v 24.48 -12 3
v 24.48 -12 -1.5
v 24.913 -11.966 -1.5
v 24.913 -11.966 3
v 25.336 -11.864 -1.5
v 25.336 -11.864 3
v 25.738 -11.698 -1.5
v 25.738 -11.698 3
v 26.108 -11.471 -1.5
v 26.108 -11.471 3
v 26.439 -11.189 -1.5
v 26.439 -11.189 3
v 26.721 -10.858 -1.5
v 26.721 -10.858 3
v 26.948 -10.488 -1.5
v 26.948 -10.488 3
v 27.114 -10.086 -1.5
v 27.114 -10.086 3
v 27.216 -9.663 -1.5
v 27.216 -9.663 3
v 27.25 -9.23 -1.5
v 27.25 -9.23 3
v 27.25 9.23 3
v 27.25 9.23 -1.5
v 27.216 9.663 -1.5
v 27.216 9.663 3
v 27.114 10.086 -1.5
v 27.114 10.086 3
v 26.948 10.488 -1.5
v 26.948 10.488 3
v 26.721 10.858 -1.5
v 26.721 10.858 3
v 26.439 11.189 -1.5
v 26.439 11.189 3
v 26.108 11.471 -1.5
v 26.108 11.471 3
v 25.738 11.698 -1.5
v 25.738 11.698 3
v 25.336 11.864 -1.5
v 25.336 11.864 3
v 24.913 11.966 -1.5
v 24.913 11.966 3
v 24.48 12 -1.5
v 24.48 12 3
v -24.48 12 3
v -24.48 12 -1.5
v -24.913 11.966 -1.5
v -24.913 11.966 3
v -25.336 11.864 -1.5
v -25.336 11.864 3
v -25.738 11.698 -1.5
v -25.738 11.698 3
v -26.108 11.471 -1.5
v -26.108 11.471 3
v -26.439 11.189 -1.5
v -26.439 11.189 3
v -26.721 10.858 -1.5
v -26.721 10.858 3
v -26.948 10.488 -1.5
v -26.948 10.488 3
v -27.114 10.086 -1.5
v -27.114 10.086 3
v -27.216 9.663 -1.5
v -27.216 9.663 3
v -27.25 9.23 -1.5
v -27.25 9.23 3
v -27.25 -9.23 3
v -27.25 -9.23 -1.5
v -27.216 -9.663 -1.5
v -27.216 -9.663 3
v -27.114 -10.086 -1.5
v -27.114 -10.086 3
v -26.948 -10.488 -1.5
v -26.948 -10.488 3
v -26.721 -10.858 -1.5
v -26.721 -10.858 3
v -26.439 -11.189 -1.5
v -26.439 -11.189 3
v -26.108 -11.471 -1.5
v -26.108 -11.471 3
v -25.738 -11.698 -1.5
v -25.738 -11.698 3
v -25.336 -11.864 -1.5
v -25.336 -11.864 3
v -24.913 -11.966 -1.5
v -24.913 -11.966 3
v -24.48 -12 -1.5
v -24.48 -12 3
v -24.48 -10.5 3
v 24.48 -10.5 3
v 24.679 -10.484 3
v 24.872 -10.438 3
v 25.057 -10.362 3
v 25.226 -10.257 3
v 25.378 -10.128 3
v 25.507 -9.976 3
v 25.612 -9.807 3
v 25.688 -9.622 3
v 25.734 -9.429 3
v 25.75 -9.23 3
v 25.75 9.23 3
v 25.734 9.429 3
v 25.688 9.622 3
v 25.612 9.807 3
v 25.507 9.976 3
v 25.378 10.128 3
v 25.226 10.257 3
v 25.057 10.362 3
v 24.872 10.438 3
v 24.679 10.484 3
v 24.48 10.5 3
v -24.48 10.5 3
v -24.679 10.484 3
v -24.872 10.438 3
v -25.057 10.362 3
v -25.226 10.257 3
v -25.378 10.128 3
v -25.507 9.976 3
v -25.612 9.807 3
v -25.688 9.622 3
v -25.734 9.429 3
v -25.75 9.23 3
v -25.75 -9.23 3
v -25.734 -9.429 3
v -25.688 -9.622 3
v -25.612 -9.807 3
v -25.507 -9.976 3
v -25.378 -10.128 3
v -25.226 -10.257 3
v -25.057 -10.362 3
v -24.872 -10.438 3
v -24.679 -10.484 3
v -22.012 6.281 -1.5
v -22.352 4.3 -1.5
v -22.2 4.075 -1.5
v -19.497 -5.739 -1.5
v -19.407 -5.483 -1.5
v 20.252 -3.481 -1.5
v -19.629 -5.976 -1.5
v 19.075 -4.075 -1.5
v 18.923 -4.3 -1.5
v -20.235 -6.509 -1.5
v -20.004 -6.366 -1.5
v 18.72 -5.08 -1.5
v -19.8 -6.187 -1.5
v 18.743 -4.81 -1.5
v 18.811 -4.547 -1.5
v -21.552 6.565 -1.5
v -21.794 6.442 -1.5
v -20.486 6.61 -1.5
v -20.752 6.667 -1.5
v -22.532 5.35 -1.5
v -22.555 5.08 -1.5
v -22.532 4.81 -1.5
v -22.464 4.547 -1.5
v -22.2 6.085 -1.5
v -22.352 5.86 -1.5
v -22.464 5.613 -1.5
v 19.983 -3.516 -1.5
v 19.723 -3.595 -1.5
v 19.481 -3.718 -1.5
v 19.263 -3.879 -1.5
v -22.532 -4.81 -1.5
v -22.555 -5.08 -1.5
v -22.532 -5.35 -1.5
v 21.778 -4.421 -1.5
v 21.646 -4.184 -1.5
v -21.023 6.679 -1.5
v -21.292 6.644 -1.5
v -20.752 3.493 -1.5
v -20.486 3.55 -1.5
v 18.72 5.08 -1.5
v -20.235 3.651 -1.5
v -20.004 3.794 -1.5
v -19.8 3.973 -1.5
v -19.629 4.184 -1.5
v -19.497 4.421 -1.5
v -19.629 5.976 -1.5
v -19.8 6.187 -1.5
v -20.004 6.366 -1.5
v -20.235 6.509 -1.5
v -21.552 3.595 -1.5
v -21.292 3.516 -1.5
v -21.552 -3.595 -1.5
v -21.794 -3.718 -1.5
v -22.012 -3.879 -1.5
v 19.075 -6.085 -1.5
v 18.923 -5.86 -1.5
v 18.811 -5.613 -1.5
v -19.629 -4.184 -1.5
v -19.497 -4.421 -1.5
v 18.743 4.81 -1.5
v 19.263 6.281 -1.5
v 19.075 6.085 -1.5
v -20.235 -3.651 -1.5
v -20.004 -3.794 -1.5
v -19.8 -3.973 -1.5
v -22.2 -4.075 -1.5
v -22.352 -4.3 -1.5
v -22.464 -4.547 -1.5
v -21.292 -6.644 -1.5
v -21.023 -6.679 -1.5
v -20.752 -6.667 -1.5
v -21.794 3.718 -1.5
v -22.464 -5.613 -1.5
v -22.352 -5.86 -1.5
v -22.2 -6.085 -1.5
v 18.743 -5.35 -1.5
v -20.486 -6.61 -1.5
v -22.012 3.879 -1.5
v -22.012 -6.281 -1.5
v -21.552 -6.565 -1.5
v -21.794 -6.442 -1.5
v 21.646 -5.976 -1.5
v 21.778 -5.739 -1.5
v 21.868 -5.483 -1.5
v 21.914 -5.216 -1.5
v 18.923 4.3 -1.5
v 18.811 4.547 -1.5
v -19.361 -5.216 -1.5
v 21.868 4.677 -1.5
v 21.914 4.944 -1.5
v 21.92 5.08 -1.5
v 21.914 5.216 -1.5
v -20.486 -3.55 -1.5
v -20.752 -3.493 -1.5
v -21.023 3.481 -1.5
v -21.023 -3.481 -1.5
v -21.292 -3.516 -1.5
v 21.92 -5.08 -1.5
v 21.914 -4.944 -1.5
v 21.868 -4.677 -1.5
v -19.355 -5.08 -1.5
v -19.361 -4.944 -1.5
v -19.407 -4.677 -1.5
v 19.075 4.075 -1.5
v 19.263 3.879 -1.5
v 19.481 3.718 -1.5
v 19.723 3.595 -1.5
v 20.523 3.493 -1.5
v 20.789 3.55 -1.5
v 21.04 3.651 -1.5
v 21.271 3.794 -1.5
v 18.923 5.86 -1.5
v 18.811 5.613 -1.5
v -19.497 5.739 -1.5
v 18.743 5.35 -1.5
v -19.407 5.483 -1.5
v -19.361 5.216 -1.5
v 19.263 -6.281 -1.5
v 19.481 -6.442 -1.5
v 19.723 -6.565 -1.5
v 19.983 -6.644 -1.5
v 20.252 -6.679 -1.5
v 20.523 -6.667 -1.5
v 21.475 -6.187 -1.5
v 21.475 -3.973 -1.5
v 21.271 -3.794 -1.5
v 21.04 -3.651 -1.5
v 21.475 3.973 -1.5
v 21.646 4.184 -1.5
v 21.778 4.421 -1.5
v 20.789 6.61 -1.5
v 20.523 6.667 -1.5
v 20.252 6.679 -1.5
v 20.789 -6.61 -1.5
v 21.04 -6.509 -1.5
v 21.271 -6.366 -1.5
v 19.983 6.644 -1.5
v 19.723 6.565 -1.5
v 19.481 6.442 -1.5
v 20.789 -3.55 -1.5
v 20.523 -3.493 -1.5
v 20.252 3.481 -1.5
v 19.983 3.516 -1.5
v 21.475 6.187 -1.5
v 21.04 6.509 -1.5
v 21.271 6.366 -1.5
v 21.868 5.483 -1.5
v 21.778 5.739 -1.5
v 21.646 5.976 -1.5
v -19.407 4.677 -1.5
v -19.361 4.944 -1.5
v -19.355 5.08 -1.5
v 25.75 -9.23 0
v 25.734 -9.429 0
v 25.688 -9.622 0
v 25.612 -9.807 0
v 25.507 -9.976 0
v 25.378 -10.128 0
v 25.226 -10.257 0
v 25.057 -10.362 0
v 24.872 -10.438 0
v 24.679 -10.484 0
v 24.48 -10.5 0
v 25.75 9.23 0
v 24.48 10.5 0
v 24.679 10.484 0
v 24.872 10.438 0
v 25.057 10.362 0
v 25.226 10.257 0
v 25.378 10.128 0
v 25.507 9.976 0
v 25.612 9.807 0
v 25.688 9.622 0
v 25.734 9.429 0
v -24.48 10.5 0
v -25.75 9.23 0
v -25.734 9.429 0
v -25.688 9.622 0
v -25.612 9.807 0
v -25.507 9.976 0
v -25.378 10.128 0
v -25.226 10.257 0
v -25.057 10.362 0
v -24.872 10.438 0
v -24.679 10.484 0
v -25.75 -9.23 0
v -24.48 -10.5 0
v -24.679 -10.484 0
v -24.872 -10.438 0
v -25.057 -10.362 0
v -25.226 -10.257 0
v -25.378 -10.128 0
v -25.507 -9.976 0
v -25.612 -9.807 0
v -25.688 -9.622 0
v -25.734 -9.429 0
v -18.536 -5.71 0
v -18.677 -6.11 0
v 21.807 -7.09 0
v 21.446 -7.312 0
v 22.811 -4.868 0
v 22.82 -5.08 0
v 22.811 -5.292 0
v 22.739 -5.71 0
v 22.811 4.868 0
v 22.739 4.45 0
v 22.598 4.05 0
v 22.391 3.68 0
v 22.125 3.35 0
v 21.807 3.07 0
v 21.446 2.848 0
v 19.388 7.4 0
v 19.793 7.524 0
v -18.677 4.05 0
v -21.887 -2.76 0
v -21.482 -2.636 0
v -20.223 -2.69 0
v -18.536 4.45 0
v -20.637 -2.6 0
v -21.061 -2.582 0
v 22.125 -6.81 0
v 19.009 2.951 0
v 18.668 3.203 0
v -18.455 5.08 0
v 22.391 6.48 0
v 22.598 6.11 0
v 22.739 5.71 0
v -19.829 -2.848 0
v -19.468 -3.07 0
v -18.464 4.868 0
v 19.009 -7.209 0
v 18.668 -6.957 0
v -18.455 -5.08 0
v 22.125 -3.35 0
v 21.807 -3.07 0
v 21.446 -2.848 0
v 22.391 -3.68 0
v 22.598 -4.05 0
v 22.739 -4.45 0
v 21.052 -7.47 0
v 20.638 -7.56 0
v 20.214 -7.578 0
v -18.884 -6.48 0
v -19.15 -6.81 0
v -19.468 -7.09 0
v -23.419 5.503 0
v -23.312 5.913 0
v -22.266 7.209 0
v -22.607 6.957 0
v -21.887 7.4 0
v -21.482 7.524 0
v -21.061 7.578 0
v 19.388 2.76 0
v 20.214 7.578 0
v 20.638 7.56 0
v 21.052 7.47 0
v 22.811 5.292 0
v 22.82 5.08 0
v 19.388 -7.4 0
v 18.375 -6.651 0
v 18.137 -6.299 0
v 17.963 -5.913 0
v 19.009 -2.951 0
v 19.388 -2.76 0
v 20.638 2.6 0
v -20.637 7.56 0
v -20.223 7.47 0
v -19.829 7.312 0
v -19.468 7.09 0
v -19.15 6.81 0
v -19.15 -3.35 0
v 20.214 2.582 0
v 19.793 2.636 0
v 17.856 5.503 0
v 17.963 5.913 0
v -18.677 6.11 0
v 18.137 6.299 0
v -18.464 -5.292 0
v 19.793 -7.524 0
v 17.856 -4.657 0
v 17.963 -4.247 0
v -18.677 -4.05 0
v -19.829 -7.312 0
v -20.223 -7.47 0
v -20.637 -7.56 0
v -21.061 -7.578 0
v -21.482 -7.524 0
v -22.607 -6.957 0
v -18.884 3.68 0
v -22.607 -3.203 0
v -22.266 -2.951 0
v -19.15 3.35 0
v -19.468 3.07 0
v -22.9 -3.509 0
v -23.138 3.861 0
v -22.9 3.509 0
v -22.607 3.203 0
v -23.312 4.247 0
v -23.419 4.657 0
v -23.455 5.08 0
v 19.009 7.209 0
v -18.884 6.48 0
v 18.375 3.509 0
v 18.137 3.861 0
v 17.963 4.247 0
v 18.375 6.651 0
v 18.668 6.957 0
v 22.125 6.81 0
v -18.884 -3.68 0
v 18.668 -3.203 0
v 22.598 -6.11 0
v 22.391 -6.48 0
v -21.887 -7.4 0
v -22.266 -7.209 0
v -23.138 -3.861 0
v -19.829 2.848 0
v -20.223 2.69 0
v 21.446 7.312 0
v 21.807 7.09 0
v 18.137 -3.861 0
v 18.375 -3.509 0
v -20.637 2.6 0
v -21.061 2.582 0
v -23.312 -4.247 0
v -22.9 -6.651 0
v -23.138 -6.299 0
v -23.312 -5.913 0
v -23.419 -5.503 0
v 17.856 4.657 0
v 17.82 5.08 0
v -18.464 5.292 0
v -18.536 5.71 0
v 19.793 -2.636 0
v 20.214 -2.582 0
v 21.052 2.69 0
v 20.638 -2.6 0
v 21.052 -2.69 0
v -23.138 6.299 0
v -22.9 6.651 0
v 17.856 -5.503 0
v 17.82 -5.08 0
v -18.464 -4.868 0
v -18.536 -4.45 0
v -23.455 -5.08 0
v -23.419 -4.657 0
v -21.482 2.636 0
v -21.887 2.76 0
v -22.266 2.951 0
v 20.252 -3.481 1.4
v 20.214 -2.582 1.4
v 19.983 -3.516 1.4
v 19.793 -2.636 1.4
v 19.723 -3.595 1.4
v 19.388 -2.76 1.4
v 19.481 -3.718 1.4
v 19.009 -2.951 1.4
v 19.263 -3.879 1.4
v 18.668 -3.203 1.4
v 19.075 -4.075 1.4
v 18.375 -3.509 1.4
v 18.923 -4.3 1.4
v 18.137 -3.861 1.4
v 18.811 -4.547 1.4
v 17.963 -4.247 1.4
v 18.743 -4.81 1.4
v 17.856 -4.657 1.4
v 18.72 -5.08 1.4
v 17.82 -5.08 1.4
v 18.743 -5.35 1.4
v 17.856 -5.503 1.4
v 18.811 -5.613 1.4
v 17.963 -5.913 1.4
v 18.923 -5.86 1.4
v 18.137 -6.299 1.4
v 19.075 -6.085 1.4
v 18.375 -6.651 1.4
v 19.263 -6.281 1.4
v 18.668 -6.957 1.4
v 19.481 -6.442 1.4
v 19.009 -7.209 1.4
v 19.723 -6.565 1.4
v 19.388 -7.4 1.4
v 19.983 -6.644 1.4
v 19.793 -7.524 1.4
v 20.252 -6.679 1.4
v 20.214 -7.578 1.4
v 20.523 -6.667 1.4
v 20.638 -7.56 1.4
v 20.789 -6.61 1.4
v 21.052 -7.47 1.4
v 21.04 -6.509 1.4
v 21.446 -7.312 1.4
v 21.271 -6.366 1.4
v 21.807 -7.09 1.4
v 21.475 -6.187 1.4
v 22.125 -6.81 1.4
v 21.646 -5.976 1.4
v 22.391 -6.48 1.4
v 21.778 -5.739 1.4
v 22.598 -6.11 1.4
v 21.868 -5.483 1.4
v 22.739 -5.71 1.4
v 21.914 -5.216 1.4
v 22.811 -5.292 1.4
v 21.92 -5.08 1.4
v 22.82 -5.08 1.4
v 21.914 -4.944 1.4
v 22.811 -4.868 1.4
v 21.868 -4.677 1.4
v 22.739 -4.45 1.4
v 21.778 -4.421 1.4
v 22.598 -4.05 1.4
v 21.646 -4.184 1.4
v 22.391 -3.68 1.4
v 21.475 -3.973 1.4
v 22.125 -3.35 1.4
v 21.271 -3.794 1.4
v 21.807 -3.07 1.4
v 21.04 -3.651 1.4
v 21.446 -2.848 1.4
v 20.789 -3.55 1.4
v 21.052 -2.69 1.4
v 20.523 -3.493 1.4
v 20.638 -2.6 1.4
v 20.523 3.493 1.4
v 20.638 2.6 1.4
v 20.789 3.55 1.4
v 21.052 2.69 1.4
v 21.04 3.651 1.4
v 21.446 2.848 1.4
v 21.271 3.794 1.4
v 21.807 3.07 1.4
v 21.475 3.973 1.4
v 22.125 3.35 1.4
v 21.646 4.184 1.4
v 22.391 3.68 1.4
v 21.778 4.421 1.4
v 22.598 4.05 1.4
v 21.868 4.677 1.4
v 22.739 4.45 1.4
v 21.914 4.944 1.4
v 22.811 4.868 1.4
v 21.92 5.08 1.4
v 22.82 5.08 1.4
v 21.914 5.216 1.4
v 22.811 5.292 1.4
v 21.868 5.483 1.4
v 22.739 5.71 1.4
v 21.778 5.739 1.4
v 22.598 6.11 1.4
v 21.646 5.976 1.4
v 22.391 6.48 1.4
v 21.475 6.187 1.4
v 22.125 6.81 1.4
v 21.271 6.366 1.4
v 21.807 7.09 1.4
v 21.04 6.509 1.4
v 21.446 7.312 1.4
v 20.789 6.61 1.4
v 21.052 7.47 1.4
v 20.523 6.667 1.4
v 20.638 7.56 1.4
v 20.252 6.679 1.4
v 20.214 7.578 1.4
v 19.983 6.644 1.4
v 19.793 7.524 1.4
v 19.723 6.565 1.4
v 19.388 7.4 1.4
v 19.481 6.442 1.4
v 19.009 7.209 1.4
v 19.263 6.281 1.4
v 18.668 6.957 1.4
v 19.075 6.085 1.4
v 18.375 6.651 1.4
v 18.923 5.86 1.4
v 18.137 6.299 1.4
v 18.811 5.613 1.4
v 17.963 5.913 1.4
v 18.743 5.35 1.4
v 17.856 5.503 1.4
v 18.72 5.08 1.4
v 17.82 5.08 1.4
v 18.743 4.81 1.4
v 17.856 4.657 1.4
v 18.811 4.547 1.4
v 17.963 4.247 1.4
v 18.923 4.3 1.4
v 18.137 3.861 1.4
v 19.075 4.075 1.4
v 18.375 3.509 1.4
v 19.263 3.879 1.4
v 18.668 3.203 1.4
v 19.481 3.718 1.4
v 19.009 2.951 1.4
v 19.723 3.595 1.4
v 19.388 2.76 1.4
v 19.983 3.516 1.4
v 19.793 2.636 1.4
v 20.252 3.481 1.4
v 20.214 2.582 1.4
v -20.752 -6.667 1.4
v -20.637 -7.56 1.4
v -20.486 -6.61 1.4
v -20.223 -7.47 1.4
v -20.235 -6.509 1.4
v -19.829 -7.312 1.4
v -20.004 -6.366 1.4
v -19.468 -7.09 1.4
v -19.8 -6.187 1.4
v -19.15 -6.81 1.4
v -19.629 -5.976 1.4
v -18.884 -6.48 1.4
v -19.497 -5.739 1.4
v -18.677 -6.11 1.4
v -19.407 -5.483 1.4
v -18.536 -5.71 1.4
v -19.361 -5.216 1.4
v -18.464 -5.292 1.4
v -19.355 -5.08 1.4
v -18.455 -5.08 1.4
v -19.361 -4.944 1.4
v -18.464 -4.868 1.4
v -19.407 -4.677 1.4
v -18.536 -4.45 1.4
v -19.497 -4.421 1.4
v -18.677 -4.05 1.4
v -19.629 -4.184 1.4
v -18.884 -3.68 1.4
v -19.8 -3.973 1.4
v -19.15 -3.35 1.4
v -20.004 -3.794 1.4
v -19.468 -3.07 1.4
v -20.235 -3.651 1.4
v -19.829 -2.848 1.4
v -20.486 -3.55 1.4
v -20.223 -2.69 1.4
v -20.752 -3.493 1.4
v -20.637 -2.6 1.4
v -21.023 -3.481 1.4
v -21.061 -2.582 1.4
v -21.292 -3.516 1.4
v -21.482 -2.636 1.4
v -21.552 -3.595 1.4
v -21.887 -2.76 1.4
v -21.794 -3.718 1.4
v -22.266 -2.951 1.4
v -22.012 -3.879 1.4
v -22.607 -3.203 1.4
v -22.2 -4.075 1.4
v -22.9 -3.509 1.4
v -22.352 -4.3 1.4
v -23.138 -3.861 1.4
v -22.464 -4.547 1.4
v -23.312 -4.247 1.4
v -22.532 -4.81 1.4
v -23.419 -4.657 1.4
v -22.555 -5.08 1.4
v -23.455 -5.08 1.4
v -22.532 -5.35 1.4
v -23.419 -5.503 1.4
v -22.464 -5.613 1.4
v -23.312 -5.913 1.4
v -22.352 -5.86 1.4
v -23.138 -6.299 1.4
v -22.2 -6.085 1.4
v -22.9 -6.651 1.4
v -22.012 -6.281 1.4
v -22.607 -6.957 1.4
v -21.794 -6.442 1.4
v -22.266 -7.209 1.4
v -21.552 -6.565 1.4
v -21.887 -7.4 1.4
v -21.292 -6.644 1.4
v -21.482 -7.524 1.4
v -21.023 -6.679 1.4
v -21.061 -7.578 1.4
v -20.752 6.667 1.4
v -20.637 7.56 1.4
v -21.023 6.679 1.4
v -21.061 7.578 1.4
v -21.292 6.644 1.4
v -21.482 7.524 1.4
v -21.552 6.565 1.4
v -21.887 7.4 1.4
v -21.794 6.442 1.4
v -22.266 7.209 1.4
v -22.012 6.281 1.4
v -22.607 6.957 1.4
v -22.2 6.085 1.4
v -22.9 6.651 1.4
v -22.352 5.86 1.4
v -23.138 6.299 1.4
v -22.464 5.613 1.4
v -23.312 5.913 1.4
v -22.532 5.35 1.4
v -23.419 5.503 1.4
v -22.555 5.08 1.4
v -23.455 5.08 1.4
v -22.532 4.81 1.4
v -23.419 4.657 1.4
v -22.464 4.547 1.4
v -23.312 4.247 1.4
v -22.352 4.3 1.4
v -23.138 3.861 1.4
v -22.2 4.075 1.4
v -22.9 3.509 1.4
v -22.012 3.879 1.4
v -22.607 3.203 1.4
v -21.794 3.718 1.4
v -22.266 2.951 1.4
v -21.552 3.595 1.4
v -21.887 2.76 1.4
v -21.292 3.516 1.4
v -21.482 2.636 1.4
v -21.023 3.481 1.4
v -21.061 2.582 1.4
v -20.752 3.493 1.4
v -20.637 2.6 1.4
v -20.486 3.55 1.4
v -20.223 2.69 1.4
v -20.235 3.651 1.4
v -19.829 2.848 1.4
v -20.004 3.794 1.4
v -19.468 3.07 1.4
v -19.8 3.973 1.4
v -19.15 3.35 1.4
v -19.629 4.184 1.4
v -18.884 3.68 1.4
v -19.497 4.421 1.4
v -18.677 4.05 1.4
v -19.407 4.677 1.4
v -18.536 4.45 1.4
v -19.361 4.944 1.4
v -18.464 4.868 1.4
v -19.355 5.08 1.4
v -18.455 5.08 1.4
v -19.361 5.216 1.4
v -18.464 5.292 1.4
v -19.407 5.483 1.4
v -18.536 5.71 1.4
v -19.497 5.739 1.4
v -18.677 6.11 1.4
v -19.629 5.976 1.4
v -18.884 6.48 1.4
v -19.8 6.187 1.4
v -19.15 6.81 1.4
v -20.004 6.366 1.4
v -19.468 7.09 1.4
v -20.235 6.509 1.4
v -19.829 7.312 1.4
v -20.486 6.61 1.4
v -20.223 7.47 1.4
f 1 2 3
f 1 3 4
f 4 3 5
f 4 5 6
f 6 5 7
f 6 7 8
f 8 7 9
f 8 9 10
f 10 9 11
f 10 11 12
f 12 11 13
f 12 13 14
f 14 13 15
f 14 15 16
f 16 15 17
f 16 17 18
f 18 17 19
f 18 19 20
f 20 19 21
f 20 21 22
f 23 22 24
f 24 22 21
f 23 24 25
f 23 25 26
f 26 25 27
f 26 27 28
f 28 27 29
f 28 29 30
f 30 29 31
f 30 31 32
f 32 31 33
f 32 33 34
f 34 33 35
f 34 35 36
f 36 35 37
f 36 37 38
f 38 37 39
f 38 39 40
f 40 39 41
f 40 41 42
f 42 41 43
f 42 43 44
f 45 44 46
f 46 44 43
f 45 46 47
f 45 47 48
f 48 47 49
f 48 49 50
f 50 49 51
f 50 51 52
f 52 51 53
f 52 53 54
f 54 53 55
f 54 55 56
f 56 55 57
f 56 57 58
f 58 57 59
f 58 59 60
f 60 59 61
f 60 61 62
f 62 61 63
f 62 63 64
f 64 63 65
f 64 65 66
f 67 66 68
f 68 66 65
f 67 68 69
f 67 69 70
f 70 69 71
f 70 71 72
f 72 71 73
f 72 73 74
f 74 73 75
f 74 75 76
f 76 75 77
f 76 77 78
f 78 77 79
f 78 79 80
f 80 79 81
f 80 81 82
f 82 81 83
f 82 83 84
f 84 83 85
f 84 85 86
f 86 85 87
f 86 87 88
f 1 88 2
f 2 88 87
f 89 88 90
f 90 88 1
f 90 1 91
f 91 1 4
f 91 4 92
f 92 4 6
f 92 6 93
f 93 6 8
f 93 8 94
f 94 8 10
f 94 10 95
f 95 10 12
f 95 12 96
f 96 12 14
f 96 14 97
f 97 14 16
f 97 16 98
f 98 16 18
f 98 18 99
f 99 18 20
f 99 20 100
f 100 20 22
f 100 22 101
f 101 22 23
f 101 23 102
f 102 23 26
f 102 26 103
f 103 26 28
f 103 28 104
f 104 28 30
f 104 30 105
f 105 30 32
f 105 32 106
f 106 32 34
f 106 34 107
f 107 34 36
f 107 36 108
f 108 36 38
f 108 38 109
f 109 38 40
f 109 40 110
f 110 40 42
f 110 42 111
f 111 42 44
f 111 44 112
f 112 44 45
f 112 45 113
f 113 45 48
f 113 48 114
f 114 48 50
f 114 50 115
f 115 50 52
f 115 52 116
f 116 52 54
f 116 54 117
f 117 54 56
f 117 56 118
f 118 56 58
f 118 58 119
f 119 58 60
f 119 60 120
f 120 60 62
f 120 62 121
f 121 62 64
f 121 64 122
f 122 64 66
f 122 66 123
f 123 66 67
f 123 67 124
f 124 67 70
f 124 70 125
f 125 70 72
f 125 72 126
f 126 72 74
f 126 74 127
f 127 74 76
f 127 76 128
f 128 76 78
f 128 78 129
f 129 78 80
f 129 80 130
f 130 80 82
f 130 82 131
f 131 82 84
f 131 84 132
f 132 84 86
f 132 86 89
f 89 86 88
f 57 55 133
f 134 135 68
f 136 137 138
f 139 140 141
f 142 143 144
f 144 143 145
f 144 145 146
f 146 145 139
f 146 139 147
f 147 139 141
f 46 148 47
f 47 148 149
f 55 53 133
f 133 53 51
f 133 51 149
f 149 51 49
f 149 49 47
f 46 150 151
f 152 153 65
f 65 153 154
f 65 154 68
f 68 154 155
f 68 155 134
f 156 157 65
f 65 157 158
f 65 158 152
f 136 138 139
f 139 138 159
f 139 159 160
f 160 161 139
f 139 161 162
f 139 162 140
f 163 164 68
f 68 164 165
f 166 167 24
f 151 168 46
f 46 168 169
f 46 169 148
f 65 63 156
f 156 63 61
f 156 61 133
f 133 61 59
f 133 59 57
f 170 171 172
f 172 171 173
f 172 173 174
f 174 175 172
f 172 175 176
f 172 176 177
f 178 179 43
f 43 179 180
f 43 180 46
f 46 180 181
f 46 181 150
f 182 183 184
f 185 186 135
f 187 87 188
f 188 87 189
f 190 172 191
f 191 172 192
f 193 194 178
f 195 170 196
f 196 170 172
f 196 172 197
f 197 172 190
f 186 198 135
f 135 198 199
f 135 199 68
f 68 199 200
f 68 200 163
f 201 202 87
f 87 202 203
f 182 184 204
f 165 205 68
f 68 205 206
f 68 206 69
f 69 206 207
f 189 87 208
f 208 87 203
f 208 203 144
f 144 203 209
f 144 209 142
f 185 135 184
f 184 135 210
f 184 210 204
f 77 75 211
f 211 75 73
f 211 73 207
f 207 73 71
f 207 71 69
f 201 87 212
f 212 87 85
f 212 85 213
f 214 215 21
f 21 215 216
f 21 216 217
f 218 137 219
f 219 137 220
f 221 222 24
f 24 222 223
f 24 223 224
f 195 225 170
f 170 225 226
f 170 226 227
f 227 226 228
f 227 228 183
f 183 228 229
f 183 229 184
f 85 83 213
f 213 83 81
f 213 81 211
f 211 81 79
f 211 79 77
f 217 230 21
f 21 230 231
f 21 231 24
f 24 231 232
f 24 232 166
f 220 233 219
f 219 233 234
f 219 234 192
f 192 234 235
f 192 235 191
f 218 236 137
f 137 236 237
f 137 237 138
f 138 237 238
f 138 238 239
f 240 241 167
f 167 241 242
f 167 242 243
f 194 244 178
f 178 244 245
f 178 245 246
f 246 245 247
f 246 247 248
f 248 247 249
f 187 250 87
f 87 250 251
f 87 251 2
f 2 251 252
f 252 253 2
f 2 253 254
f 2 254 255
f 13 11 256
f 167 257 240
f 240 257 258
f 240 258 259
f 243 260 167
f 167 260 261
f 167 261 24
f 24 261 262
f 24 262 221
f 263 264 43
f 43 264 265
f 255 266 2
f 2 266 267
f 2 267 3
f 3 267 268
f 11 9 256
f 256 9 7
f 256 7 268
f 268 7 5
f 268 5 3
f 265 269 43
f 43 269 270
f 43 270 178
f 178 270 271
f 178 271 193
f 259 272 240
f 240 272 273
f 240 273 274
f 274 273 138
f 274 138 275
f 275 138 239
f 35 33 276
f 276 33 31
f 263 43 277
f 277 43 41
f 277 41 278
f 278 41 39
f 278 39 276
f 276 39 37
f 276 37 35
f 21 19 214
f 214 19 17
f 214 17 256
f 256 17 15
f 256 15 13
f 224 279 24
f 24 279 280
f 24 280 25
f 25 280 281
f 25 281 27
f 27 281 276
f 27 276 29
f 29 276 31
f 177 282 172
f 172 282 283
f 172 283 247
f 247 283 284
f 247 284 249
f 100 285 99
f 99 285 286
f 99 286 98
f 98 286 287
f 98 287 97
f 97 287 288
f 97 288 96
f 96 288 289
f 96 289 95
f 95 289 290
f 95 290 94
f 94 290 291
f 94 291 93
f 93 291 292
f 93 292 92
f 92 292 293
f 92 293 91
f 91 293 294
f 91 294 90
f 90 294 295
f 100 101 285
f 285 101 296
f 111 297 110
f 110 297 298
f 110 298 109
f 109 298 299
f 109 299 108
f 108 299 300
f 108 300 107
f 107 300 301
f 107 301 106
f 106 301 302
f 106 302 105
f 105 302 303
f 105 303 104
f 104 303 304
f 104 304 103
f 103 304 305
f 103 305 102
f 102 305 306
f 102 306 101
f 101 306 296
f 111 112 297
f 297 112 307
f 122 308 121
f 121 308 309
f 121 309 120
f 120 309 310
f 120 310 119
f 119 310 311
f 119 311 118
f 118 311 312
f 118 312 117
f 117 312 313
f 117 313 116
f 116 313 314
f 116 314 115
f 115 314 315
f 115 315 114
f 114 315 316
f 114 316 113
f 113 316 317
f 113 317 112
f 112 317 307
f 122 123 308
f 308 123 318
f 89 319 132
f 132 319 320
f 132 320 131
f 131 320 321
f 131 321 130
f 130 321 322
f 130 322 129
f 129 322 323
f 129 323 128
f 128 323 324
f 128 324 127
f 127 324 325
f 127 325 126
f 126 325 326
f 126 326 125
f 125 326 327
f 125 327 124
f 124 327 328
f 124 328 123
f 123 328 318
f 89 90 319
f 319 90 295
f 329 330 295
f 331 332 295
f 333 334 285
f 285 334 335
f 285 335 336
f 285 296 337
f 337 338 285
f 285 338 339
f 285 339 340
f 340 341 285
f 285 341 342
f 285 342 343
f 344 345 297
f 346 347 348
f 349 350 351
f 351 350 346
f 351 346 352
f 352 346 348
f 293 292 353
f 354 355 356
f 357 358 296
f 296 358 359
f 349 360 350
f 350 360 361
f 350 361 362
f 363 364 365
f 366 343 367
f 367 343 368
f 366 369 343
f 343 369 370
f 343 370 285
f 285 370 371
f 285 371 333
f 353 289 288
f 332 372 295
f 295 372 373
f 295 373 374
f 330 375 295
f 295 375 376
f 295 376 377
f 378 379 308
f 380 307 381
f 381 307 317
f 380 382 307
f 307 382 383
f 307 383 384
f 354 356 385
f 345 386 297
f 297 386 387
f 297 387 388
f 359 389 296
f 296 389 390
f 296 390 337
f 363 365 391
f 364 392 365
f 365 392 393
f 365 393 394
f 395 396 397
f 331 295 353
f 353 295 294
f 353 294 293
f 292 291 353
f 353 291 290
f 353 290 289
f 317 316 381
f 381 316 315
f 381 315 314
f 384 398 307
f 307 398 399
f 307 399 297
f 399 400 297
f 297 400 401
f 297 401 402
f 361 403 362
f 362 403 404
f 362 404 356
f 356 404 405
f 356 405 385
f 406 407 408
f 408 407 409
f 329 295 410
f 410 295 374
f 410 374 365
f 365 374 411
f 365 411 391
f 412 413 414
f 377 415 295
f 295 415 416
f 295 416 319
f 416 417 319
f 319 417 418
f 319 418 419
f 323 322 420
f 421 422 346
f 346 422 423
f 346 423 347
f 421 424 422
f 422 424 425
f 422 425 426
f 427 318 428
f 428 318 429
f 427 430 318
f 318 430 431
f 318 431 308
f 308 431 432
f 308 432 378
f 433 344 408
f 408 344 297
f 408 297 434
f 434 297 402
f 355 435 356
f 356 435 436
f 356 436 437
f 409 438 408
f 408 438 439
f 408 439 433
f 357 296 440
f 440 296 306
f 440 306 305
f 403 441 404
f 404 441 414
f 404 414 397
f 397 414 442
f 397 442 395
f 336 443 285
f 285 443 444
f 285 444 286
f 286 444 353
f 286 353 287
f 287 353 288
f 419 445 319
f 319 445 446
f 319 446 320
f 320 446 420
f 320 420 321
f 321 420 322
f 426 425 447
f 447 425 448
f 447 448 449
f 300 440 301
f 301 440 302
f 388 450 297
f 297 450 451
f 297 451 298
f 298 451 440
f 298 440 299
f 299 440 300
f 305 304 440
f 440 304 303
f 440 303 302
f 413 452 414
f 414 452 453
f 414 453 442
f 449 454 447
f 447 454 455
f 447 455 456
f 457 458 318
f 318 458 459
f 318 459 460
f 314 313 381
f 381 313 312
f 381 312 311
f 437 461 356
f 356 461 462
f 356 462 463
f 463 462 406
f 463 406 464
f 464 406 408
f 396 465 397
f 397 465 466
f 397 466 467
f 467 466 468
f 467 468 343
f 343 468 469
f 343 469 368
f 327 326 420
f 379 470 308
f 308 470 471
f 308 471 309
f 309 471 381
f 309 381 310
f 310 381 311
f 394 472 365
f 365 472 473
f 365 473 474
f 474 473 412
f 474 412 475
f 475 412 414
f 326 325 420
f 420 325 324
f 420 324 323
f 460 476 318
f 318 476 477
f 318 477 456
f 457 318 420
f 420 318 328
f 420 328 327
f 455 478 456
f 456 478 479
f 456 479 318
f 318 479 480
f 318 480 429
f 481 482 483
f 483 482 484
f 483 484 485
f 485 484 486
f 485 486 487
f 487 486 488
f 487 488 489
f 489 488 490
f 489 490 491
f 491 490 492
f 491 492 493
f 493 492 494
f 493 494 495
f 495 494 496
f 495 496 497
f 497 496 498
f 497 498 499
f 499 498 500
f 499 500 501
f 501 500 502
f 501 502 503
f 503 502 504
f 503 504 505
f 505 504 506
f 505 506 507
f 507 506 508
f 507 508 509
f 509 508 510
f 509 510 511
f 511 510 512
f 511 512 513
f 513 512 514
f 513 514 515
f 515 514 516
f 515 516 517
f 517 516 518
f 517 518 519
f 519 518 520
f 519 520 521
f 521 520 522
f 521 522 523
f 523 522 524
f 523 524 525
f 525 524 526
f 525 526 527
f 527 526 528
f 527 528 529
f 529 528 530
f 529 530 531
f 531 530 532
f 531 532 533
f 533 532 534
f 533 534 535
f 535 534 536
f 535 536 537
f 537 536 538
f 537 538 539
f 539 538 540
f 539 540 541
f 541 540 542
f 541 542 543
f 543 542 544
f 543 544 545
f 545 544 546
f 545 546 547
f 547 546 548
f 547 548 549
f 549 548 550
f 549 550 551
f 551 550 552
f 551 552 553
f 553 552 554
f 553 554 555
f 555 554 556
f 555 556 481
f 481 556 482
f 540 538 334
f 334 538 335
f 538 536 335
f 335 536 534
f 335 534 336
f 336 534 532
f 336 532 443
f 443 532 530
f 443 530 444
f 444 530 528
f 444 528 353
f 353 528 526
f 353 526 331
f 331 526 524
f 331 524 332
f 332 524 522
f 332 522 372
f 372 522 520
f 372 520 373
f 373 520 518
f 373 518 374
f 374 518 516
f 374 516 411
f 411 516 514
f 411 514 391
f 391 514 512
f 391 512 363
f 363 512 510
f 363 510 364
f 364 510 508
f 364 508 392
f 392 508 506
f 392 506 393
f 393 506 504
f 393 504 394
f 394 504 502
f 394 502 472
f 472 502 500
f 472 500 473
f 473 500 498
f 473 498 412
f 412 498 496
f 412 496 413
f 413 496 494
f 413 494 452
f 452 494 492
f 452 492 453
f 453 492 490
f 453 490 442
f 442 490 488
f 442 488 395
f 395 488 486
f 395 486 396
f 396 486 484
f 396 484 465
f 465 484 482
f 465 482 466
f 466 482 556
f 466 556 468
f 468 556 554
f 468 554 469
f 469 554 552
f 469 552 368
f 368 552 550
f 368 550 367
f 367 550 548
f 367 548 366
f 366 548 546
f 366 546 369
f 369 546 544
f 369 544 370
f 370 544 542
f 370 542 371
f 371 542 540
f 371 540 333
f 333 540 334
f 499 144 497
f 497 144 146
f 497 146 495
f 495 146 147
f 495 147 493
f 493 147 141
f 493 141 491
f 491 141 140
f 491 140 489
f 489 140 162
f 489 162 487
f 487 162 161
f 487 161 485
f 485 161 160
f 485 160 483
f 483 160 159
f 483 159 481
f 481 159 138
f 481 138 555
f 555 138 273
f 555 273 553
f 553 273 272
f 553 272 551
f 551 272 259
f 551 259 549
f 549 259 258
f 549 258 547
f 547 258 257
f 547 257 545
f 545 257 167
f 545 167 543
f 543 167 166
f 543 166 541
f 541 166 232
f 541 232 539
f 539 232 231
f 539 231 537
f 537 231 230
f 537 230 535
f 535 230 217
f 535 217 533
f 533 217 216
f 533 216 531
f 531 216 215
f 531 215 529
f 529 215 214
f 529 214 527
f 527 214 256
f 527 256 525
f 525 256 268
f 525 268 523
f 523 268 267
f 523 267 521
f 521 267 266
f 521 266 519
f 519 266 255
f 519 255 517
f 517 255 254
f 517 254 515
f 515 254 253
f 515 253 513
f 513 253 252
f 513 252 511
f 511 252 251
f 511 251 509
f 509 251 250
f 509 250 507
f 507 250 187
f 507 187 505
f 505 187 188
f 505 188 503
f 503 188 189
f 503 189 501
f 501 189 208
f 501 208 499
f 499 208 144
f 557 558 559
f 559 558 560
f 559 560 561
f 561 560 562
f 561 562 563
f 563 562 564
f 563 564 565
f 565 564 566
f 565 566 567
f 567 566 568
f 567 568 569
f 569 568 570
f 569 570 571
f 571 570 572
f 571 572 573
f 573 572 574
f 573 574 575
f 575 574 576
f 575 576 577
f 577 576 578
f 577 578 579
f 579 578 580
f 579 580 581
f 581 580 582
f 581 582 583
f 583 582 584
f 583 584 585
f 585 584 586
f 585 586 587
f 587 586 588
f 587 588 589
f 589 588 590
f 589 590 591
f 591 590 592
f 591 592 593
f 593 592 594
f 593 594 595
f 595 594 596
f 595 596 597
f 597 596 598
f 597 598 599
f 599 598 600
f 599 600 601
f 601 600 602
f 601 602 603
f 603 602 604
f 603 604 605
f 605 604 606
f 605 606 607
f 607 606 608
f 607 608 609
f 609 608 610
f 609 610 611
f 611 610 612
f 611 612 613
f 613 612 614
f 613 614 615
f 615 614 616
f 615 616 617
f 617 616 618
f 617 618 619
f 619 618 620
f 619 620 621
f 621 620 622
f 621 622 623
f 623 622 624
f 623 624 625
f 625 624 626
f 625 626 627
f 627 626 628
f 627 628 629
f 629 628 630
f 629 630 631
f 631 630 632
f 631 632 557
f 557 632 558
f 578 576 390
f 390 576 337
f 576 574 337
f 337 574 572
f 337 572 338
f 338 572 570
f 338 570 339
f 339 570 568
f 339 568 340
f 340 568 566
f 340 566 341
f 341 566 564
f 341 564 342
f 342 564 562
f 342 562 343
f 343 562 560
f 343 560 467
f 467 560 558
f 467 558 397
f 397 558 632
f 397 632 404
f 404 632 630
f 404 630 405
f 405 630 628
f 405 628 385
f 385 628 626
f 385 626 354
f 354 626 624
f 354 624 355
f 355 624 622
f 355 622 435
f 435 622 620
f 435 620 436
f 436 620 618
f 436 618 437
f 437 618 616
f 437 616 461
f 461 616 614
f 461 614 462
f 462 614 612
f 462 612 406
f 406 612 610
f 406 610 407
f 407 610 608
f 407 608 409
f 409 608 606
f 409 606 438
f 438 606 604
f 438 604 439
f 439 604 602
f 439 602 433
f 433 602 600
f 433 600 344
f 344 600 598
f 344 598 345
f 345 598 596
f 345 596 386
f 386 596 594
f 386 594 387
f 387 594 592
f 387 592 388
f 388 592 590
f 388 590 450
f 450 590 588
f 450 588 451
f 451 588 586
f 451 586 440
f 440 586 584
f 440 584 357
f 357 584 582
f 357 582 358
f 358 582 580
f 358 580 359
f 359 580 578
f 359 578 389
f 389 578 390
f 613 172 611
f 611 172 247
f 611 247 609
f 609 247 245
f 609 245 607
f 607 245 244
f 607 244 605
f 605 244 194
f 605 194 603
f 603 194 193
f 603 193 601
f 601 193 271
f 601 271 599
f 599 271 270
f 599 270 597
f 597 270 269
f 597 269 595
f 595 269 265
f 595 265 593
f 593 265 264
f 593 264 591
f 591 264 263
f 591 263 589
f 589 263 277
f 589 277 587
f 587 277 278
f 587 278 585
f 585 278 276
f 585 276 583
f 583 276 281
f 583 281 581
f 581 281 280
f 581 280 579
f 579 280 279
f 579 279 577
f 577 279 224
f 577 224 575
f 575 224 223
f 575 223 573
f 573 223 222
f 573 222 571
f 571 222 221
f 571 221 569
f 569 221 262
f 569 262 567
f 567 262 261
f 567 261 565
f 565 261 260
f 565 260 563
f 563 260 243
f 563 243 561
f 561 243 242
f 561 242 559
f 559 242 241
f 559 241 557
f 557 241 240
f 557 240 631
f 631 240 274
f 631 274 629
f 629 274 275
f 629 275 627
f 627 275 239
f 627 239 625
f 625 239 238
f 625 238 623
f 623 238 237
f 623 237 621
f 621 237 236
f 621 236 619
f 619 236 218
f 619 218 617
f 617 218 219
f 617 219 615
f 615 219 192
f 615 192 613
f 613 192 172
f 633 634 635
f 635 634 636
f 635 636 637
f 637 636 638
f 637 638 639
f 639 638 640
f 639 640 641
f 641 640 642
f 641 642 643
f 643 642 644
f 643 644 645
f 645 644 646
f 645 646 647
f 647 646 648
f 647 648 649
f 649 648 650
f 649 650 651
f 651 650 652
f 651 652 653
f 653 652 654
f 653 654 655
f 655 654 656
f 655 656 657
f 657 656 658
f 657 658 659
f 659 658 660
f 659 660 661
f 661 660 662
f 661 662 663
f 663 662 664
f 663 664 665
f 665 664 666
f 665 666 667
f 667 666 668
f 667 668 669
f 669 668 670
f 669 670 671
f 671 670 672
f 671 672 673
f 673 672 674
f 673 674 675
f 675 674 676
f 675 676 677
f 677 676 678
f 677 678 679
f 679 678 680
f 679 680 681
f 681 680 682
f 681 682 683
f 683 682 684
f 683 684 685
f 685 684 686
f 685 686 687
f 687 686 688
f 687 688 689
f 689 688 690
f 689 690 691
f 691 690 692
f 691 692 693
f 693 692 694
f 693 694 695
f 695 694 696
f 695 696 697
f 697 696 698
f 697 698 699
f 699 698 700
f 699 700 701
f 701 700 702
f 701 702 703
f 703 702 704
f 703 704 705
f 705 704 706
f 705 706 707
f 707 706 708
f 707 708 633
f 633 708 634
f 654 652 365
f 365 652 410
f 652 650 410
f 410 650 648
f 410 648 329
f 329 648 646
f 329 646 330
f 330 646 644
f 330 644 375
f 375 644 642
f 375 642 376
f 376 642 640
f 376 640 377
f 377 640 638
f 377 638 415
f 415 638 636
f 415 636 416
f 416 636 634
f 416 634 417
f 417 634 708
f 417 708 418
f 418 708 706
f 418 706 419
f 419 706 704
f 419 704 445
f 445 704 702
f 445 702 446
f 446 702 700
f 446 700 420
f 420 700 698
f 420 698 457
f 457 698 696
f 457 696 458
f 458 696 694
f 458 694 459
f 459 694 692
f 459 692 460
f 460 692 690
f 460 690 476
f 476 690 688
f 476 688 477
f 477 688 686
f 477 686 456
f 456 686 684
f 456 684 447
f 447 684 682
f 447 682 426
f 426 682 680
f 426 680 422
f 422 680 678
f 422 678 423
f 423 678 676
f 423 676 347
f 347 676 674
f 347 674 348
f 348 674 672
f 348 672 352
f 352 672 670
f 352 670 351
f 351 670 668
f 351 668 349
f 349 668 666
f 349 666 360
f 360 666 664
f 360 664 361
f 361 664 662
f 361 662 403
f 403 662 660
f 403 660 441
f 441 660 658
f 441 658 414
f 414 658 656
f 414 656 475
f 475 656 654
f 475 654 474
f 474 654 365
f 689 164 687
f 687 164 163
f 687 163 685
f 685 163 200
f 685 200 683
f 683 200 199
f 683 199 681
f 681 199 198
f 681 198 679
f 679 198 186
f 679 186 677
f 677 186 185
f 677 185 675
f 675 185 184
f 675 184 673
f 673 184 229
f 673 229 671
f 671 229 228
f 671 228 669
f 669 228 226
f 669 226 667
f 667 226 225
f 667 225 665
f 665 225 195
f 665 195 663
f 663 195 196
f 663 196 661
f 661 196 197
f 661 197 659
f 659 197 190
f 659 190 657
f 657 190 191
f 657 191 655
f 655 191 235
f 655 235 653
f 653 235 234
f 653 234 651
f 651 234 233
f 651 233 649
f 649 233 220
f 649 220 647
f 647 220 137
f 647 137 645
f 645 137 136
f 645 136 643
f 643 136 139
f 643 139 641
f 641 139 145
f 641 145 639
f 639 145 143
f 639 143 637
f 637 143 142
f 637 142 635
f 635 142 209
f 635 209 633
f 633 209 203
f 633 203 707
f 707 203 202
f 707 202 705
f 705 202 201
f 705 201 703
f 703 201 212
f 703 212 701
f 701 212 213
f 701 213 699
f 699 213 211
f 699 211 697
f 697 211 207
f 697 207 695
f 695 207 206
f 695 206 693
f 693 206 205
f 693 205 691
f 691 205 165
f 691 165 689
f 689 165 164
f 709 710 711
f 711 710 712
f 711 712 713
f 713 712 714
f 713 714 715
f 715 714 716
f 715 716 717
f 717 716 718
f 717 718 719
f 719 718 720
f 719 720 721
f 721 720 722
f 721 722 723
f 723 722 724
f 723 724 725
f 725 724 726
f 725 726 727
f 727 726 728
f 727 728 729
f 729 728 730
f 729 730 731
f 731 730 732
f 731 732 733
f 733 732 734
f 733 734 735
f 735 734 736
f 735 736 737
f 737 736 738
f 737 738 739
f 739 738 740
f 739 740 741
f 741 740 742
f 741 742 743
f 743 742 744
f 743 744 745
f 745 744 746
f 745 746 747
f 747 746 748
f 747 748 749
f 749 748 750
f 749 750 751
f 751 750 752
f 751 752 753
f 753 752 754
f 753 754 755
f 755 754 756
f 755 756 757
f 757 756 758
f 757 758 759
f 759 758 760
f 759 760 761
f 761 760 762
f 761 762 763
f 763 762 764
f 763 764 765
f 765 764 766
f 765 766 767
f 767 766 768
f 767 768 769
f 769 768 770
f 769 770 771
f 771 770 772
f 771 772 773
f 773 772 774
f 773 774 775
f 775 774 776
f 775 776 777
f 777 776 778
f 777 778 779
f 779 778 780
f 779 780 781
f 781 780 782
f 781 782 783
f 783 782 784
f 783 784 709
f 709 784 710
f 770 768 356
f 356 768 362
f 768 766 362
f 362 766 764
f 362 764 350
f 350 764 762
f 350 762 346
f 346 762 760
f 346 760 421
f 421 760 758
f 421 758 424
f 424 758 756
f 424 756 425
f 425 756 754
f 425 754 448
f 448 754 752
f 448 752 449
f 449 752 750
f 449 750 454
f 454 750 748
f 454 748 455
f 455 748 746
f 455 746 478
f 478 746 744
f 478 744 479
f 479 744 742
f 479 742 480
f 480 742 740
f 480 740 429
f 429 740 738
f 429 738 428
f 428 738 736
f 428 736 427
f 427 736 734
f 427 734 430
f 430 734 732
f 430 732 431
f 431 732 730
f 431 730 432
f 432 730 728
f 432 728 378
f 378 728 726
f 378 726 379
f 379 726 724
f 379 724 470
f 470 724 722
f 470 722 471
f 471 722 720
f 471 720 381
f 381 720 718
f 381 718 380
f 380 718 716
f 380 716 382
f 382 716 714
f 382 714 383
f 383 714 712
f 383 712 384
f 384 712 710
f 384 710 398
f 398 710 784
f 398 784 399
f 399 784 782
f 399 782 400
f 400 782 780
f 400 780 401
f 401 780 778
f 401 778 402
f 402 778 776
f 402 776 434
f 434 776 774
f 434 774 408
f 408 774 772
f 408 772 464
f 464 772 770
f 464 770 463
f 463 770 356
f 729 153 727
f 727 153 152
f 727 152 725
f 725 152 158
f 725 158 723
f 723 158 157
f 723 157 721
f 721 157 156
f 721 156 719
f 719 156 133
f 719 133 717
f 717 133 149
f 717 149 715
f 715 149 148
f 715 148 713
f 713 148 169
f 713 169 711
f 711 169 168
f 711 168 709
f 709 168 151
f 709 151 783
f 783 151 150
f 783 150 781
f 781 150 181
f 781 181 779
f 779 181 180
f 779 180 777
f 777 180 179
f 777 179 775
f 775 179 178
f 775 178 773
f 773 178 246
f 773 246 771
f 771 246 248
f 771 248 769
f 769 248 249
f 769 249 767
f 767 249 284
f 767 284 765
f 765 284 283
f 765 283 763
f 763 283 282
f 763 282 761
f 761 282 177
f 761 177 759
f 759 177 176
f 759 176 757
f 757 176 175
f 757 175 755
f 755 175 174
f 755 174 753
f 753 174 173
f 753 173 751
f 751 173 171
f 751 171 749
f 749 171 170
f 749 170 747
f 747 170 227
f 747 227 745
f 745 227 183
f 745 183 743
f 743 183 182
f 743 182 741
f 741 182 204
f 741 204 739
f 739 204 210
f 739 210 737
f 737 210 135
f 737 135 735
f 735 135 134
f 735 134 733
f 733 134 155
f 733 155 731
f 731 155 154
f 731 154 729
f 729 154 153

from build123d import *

# Parameters (mm, degrees)
BOSS_EXTRU_1_DEPTH           = 3
COQUE1_T                     = 1.5
ESQUISSE2_R                  = 2.5
ESQUISSE2_R_2                = 1.6
BOSS_EXTRU_2_DEPTH           = 1.4
ENL_V_MAT_EXTRU_1_DEPTH      = 30.925950277
ENL_V_MAT_EXTRU_1_DEPTH_BACK = 30.925950277
ESQUISSE3_R                  = 1.6


with BuildPart() as part:
    # Esquisse1 → Boss.-Extru.1 (new body)
    with BuildSketch(Plane.XY):
        with BuildLine():
            Line((-24.48, -10.5), (24.48, -10.5))
            ThreePointArc((24.48, -10.5), (25.378025612, -10.128025612), (25.75, -9.23))
            Line((25.75, -9.23), (25.75, 9.23))
            ThreePointArc((25.75, 9.23), (25.378025612, 10.128025612), (24.48, 10.5))
            Line((24.48, 10.5), (-24.48, 10.5))
            ThreePointArc((-24.48, 10.5), (-25.378025612, 10.128025612), (-25.75, 9.23))
            Line((-25.75, 9.23), (-25.75, -9.23))
            ThreePointArc((-25.75, -9.23), (-25.378025612, -10.128025612), (-24.48, -10.5))
        make_face()
    extrude(amount=BOSS_EXTRU_1_DEPTH)

    # Coque1
    coque1_openings = [part.faces().sort_by_distance(p)[0] for p in [
        (0, 0, 3),
    ]]
    offset(amount=COQUE1_T, openings=coque1_openings, kind=Kind.INTERSECTION)

    # Esquisse2 → Boss.-Extru.2 (add)
    # profile 1 of 4: a face of its own
    with BuildSketch(Plane.XY):
        with Locations((20.32, 5.08)):
            Circle(ESQUISSE2_R)
        with Locations((20.32, 5.08)):
            Circle(ESQUISSE2_R_2, mode=Mode.SUBTRACT)
    # profile 2 of 4: a face of its own
    with BuildSketch(Plane.XY):
        with Locations((-20.955, -5.08)):
            Circle(ESQUISSE2_R)
        with Locations((-20.955, -5.08)):
            Circle(ESQUISSE2_R_2, mode=Mode.SUBTRACT)
    # profile 3 of 4: a face of its own
    with BuildSketch(Plane.XY):
        with Locations((-20.955, 5.08)):
            Circle(ESQUISSE2_R)
        with Locations((-20.955, 5.08)):
            Circle(ESQUISSE2_R_2, mode=Mode.SUBTRACT)
    # profile 4 of 4: a face of its own
    with BuildSketch(Plane.XY):
        with Locations((20.32, -5.08)):
            Circle(ESQUISSE2_R)
        with Locations((20.32, -5.08)):
            Circle(ESQUISSE2_R_2, mode=Mode.SUBTRACT)
    extrude(amount=BOSS_EXTRU_2_DEPTH)

    # Esquisse3 → Enlèv. mat.-Extru.1 (cut, two sides: drawn at the far end of the back side and taken through both)
    with BuildSketch(Plane.XY.offset(-ENL_V_MAT_EXTRU_1_DEPTH_BACK)):
        with Locations((20.32, 5.08)):
            Circle(ESQUISSE3_R)
        with Locations((-20.955, 5.08)):
            Circle(ESQUISSE3_R)
        with Locations((-20.955, -5.08)):
            Circle(ESQUISSE3_R)
        with Locations((20.32, -5.08)):
            Circle(ESQUISSE3_R)
    extrude(amount=ENL_V_MAT_EXTRU_1_DEPTH + ENL_V_MAT_EXTRU_1_DEPTH_BACK, mode=Mode.SUBTRACT)


solid = part.part
